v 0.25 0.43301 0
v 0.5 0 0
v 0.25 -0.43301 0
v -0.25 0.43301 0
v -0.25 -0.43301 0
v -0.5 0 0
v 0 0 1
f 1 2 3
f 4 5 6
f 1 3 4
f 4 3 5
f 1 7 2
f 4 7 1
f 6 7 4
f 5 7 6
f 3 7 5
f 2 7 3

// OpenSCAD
// Hexagon Pyramid for Stacks of Shapes
// by Slashee the Cow

linear_extrude(1, scale = 0)
circle(d=1, $fn=6);
